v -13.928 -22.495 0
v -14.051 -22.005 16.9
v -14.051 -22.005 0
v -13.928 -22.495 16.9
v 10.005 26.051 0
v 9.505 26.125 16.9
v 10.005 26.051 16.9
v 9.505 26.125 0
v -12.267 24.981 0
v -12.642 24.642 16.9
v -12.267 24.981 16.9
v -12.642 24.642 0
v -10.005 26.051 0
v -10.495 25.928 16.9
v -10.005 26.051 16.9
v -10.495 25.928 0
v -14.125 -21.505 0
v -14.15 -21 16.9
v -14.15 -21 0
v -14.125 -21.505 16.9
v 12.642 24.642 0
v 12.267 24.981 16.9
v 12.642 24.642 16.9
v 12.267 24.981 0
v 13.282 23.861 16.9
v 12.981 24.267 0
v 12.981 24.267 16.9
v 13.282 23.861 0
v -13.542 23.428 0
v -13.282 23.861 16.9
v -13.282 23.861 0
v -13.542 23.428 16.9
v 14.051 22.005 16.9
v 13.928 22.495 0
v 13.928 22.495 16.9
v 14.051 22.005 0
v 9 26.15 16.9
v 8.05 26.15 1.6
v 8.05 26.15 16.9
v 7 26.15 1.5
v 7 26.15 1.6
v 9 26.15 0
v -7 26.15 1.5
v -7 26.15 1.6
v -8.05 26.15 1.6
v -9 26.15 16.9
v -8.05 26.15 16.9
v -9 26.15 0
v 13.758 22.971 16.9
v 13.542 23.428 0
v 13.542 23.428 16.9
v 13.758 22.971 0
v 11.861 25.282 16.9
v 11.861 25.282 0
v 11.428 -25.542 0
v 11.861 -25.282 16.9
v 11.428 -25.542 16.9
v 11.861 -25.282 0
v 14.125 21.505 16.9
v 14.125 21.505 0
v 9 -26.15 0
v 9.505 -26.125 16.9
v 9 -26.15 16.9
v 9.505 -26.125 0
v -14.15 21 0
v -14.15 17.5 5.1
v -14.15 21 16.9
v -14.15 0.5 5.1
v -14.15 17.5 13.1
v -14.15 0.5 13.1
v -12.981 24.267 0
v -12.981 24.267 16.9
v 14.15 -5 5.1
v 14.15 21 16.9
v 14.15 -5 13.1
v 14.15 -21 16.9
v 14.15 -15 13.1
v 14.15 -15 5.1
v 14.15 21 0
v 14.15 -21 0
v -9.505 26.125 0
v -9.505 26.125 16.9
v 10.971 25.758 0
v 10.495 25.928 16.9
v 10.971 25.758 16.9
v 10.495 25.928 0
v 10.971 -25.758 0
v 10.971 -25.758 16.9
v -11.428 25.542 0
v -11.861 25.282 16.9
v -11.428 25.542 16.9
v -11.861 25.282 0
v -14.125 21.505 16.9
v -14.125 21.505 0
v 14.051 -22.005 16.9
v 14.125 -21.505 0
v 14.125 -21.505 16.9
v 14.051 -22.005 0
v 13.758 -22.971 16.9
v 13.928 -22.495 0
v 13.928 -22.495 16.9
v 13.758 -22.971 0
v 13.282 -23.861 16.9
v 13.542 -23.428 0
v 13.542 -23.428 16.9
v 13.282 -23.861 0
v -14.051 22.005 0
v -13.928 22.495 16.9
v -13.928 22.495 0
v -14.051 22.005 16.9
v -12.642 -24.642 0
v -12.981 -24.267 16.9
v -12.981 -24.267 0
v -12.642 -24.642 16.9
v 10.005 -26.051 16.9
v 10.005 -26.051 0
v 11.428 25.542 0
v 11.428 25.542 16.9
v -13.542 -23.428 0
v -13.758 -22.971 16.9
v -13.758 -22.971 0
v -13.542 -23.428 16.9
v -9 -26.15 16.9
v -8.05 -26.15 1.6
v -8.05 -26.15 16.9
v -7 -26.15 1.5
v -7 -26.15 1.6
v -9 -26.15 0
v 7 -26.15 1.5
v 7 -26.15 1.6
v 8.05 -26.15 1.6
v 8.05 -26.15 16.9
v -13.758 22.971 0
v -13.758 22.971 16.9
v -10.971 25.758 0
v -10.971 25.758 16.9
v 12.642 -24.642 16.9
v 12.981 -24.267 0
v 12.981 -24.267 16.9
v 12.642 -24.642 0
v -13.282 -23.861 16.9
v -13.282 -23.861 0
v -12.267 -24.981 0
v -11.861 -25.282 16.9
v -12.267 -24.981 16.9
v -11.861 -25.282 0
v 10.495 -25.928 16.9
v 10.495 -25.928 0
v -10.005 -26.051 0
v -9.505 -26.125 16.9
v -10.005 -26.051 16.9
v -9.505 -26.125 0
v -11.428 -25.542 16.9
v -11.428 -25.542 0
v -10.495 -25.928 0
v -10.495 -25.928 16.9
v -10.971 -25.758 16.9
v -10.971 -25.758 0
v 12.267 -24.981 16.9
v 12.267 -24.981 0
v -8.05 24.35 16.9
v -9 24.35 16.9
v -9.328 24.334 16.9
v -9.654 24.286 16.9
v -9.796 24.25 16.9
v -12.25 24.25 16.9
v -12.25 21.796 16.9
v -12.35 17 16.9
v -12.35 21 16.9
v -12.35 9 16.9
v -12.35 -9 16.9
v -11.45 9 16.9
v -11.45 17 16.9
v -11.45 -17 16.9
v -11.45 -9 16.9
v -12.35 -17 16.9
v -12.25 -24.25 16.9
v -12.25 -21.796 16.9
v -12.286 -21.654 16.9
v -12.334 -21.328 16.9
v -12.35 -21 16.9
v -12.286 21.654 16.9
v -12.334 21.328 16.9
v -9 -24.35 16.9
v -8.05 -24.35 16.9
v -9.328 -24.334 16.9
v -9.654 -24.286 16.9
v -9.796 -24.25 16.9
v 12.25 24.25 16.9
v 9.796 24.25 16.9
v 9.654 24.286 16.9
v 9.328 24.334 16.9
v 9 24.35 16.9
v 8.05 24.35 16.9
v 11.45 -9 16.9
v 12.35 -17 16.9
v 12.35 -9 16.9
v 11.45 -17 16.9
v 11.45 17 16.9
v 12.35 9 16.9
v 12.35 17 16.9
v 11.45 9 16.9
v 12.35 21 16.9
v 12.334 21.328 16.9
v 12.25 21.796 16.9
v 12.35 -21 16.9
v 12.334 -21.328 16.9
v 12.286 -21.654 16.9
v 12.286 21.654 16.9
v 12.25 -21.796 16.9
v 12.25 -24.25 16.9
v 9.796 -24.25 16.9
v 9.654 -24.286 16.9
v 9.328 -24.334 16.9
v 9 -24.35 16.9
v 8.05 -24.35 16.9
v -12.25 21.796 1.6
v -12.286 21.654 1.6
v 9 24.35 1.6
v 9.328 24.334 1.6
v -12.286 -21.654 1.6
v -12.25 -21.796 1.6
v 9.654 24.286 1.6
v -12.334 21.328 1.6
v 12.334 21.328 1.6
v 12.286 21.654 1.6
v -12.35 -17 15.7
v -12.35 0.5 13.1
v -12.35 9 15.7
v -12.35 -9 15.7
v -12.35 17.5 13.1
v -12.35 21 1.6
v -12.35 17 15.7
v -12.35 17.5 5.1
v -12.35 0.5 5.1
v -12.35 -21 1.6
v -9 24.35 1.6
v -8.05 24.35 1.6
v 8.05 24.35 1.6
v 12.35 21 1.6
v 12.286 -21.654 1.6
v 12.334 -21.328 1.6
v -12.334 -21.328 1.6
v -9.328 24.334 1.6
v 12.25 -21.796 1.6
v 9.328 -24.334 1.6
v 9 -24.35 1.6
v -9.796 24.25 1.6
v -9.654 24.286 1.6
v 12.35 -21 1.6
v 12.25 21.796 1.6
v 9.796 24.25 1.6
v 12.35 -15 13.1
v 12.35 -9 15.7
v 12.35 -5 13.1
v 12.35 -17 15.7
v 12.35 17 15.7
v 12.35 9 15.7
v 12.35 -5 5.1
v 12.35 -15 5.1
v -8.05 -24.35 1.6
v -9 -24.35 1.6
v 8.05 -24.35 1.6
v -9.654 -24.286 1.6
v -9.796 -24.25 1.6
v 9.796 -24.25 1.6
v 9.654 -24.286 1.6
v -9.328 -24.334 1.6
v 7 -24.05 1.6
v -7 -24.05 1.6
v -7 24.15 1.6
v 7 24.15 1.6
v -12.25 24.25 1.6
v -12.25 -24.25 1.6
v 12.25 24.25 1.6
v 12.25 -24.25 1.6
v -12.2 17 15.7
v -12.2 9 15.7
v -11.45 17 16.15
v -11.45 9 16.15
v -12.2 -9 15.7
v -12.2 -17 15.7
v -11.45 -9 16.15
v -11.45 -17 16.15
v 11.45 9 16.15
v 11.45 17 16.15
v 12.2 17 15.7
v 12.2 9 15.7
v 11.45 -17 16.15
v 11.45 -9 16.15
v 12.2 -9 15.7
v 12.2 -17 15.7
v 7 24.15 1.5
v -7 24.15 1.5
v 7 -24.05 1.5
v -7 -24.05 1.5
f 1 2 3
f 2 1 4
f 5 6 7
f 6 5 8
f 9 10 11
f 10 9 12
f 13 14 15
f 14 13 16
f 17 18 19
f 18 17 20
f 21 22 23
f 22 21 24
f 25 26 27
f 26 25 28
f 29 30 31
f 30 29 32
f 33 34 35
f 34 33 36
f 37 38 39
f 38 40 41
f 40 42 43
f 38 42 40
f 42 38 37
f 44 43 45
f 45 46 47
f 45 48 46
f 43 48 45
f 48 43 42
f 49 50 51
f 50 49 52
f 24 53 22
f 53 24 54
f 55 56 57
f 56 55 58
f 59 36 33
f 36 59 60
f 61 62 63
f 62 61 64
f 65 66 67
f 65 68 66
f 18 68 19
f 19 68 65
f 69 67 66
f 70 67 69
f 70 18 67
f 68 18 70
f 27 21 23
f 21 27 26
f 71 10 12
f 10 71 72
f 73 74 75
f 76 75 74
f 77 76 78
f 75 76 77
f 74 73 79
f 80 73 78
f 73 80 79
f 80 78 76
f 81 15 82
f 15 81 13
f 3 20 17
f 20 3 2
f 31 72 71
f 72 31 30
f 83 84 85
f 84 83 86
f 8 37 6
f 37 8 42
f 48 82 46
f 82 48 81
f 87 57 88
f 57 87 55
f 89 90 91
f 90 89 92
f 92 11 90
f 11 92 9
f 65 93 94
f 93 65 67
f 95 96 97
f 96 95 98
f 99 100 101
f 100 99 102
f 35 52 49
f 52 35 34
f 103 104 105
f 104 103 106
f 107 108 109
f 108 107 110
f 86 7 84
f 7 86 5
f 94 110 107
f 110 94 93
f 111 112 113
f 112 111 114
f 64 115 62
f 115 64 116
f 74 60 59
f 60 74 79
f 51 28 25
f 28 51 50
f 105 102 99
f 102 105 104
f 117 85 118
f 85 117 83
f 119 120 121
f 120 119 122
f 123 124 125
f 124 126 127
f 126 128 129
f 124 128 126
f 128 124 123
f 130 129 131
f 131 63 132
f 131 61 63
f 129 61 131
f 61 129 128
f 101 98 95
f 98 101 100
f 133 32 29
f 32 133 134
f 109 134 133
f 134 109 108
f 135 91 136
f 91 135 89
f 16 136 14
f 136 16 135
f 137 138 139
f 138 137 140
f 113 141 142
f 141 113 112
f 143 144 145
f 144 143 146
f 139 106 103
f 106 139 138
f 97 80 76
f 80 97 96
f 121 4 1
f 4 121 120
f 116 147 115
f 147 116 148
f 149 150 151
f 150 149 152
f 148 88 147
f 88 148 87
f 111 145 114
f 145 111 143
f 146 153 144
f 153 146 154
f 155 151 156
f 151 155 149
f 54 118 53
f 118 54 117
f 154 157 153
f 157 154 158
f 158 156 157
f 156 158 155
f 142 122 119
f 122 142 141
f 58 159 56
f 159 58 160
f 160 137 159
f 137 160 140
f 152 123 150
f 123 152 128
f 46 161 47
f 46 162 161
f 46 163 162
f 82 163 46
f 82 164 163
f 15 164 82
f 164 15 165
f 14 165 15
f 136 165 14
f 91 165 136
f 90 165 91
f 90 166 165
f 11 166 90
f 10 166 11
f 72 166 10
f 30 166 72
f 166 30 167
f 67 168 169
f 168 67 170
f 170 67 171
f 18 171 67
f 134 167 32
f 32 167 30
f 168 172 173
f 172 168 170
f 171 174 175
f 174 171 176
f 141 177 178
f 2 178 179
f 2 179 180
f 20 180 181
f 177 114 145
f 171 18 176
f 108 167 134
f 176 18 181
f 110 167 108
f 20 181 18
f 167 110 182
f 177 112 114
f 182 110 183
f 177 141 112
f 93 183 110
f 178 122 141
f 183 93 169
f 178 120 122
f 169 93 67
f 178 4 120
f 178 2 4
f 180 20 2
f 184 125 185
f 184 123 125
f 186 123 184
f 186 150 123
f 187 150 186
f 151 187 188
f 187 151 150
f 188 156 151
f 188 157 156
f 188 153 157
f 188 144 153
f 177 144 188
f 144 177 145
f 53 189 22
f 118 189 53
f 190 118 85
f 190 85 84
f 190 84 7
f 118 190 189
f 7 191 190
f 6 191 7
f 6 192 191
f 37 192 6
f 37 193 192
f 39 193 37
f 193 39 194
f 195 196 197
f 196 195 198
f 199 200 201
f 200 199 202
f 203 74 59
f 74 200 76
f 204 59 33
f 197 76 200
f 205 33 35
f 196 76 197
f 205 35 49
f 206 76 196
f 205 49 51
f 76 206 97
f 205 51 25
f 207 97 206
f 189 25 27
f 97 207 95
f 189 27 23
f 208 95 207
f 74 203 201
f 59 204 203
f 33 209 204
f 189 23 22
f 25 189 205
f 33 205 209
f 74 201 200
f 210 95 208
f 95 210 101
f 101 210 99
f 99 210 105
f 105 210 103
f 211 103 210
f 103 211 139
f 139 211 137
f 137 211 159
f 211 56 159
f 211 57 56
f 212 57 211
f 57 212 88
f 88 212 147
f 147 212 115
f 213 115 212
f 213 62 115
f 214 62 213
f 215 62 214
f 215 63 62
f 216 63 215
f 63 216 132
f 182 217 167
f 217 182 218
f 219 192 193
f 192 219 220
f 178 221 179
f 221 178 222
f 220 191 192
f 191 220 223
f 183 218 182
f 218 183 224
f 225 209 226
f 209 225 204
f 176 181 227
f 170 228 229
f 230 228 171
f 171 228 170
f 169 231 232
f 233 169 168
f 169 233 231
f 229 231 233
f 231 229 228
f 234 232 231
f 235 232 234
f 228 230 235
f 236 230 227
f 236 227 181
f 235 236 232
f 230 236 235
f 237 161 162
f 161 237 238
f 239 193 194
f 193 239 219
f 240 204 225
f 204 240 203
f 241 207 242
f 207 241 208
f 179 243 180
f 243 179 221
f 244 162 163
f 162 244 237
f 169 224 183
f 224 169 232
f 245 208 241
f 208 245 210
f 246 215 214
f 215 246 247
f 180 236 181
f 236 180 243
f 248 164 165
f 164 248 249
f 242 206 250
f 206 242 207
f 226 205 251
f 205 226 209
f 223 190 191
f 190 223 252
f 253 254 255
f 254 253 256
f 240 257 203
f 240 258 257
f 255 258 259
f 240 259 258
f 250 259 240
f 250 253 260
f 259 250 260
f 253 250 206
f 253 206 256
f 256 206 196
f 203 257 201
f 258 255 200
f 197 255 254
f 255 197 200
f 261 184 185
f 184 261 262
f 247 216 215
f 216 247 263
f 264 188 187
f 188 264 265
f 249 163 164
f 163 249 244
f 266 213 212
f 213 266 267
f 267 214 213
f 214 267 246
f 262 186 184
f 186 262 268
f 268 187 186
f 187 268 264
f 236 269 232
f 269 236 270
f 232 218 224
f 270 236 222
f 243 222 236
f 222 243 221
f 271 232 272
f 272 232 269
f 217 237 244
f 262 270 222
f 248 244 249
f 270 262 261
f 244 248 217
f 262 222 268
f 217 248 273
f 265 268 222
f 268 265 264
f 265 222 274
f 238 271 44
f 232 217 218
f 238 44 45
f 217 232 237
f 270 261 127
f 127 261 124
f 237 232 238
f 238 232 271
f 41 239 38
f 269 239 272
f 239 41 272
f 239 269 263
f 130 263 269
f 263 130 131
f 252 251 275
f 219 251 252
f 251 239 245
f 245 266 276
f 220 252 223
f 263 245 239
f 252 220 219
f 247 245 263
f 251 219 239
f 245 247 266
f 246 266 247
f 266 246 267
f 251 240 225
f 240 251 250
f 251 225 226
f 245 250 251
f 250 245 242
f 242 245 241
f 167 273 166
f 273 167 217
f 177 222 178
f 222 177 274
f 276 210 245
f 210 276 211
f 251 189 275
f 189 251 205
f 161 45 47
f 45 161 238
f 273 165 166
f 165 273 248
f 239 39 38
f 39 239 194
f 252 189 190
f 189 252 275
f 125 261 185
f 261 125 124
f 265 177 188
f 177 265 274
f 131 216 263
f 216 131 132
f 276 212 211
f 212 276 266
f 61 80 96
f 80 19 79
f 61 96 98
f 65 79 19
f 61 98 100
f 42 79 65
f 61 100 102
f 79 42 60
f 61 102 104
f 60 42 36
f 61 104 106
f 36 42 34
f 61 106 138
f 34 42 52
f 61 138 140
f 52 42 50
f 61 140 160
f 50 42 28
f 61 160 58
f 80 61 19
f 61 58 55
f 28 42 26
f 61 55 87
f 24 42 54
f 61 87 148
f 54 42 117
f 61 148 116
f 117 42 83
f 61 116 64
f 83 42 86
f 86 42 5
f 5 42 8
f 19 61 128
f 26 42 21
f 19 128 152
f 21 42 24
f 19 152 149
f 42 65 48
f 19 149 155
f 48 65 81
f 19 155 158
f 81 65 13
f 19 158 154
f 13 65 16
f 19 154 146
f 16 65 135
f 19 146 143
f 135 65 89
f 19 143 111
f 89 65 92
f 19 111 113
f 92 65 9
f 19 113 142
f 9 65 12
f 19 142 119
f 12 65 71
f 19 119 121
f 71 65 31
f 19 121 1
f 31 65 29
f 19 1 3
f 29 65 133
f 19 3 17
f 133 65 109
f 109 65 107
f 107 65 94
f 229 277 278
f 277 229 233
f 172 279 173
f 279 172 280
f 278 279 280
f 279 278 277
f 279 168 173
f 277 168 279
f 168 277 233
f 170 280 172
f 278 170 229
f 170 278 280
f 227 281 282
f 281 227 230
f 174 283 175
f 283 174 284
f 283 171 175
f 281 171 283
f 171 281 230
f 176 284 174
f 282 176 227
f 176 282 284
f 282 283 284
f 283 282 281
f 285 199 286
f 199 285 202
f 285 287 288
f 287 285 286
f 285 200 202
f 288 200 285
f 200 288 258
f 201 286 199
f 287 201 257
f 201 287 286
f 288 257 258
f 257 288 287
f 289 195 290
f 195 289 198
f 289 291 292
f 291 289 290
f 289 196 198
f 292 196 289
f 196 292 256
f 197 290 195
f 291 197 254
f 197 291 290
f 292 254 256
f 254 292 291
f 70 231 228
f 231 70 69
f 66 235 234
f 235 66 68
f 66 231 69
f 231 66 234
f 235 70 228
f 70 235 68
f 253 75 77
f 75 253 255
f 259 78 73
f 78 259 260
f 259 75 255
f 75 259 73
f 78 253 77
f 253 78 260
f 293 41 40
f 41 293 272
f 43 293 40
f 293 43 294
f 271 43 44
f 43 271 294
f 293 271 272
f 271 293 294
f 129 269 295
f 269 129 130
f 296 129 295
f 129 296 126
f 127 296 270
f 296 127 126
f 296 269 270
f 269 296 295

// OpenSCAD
/*
Minimal snap case for M5StickS3, intended for PLA/PETG.

User-defined orientation:
- front  = screen side
- rear   = table side
- bottom = USB-C side
- top    = GPIO/Hat2 side
- left/right as viewed from the front

Insertion:
- device is inserted rear-first into the case from the front
- clips snap over the front face

Official dimensions used from M5Stack docs / model-size PDF:
- 48.0 x 24.0 x 15.0 mm
- body corner radius R3

Notes:
- Only the overall envelope is official here.
- Button window positions are intentionally generous and should be tuned after first print.
*/

$fn = 64;

// Official overall envelope.
device_w = 24.0;   // left-right
device_h = 48.0;   // bottom-top
device_d = 15.0;   // rear-front
device_r = 3.0;

// General fit for rigid plastics.
clearance_xy = 0.35;
clearance_z = 0.30;
wall = 1.80;
rear_wall = 1.60;
join = 0.08;

// Top/bottom retention geometry.
corner_span = 6.0;

// Front clips.
clip_depth = 1.2;
clip_span = 8.0;
clip_lip = 0.90;
clip_ramp = 0.75;
clip_y1 = 13.0;
clip_y2 = -13.0;

// Side button windows.
left_btn_h = 17.0;
left_btn_y = 9.0;
right_btn_h = 10.0;
right_btn_y = -10.0;
btn_window_z = 8.0;

// Connector openings.
top_open_w = 14.0;
bottom_open_w = 14.0;

inner_w = device_w + 2 * clearance_xy;
inner_h = device_h + 2 * clearance_xy;
inner_d = device_d + clearance_z;

outer_w = inner_w + 2 * wall;
outer_h = inner_h + 2 * wall;
outer_d = rear_wall + inner_d;
outer_r = device_r + clearance_xy + wall;

front_z = outer_d;
inner_front_z = rear_wall + inner_d;

module rounded_rect_2d(w, h, r) {
    hull() {
        for (x = [-1, 1], y = [-1, 1]) {
            translate([x * (w / 2 - r), y * (h / 2 - r)])
                circle(r = r);
        }
    }
}

module rounded_prism(w, h, d, r) {
    linear_extrude(height = d)
        rounded_rect_2d(w, h, r);
}

module rear_plate() {
    rounded_prism(outer_w, outer_h, rear_wall, outer_r);
}

module shell_band() {
    difference() {
        rounded_prism(outer_w, outer_h, outer_d, outer_r);

        translate([0, 0, rear_wall])
            rounded_prism(inner_w, inner_h, outer_d - rear_wall + 0.2, device_r + clearance_xy);
    }
}

module top_left_rail() {
    intersection() {
        shell_band();

        translate([-outer_w / 2 - 0.1, inner_h / 2 - 0.1, rear_wall - join])
            cube([corner_span + 0.2, wall + 0.2, outer_d]);
    }
}

module top_right_rail() {
    intersection() {
        shell_band();

        translate([outer_w / 2 - corner_span - 0.1, inner_h / 2 - 0.1, rear_wall - join])
            cube([corner_span + 0.2, wall + 0.2, outer_d]);
    }
}

module bottom_left_rail() {
    intersection() {
        shell_band();

        translate([-outer_w / 2 - 0.1, -outer_h / 2 - 0.1, rear_wall - join])
            cube([corner_span + 0.2, wall + 0.2, outer_d]);
    }
}

module bottom_right_rail() {
    intersection() {
        shell_band();

        translate([outer_w / 2 - corner_span - 0.1, -outer_h / 2 - 0.1, rear_wall - join])
            cube([corner_span + 0.2, wall + 0.2, outer_d]);
    }
}

module left_wall() {
    intersection() {
        shell_band();

        translate([-outer_w / 2 - 0.1, -outer_h / 2 - 0.1, rear_wall - join])
            cube([wall + 0.2, outer_h + 0.2, outer_d]);
    }
}

module right_wall() {
    intersection() {
        shell_band();

        translate([outer_w / 2 - wall - 0.1, -outer_h / 2 - 0.1, rear_wall - join])
            cube([wall + 0.2, outer_h + 0.2, outer_d]);
    }
}

module left_clip(y_pos) {
    hull() {
        translate([-inner_w / 2 - join, y_pos - clip_span / 2, inner_front_z - clip_ramp])
            cube([clip_lip + join, clip_span, clip_ramp]);

        translate([-inner_w / 2 - join, y_pos - clip_span / 2, inner_front_z - clip_depth])
            cube([clip_lip + join - clip_ramp, clip_span, clip_depth - clip_ramp]);
    }
}

module right_clip(y_pos) {
    hull() {
        translate([inner_w / 2 - clip_lip, y_pos - clip_span / 2, inner_front_z - clip_ramp])
            cube([clip_lip + join, clip_span, clip_ramp]);

        translate([inner_w / 2 - clip_lip + clip_ramp, y_pos - clip_span / 2, inner_front_z - clip_depth])
            cube([clip_lip + join - clip_ramp, clip_span, clip_depth - clip_ramp]);
    }
}

module body() {
    union() {
        rear_plate();
        left_wall();
        right_wall();
        top_left_rail();
        top_right_rail();
        bottom_left_rail();
        bottom_right_rail();
        left_clip(clip_y1);
        left_clip(clip_y2);
        right_clip(clip_y1);
        right_clip(clip_y2);
    }
}

module cutouts() {
    // Left side button access.
    translate([-outer_w / 2 - 0.1, left_btn_y - left_btn_h / 2, rear_wall + 3.5])
        cube([wall + 0.3, left_btn_h, btn_window_z]);

    // Right side button access.
    translate([outer_w / 2 - wall - 0.2, right_btn_y - right_btn_h / 2, rear_wall + 3.5])
        cube([wall + 0.4, right_btn_h, btn_window_z]);

    // Open the top center for the GPIO/Hat2 connector.
    translate([-top_open_w / 2, inner_h / 2 - 0.2, rear_wall - 0.1])
        cube([top_open_w, wall + 0.4, inner_d + 0.2]);

    // Open the bottom center for the USB-C side.
    translate([-bottom_open_w / 2, -outer_h / 2 - 0.1, rear_wall - 0.1])
        cube([bottom_open_w, wall + 0.4, inner_d + 0.2]);
}

difference() {
    body();
    cutouts();
}
